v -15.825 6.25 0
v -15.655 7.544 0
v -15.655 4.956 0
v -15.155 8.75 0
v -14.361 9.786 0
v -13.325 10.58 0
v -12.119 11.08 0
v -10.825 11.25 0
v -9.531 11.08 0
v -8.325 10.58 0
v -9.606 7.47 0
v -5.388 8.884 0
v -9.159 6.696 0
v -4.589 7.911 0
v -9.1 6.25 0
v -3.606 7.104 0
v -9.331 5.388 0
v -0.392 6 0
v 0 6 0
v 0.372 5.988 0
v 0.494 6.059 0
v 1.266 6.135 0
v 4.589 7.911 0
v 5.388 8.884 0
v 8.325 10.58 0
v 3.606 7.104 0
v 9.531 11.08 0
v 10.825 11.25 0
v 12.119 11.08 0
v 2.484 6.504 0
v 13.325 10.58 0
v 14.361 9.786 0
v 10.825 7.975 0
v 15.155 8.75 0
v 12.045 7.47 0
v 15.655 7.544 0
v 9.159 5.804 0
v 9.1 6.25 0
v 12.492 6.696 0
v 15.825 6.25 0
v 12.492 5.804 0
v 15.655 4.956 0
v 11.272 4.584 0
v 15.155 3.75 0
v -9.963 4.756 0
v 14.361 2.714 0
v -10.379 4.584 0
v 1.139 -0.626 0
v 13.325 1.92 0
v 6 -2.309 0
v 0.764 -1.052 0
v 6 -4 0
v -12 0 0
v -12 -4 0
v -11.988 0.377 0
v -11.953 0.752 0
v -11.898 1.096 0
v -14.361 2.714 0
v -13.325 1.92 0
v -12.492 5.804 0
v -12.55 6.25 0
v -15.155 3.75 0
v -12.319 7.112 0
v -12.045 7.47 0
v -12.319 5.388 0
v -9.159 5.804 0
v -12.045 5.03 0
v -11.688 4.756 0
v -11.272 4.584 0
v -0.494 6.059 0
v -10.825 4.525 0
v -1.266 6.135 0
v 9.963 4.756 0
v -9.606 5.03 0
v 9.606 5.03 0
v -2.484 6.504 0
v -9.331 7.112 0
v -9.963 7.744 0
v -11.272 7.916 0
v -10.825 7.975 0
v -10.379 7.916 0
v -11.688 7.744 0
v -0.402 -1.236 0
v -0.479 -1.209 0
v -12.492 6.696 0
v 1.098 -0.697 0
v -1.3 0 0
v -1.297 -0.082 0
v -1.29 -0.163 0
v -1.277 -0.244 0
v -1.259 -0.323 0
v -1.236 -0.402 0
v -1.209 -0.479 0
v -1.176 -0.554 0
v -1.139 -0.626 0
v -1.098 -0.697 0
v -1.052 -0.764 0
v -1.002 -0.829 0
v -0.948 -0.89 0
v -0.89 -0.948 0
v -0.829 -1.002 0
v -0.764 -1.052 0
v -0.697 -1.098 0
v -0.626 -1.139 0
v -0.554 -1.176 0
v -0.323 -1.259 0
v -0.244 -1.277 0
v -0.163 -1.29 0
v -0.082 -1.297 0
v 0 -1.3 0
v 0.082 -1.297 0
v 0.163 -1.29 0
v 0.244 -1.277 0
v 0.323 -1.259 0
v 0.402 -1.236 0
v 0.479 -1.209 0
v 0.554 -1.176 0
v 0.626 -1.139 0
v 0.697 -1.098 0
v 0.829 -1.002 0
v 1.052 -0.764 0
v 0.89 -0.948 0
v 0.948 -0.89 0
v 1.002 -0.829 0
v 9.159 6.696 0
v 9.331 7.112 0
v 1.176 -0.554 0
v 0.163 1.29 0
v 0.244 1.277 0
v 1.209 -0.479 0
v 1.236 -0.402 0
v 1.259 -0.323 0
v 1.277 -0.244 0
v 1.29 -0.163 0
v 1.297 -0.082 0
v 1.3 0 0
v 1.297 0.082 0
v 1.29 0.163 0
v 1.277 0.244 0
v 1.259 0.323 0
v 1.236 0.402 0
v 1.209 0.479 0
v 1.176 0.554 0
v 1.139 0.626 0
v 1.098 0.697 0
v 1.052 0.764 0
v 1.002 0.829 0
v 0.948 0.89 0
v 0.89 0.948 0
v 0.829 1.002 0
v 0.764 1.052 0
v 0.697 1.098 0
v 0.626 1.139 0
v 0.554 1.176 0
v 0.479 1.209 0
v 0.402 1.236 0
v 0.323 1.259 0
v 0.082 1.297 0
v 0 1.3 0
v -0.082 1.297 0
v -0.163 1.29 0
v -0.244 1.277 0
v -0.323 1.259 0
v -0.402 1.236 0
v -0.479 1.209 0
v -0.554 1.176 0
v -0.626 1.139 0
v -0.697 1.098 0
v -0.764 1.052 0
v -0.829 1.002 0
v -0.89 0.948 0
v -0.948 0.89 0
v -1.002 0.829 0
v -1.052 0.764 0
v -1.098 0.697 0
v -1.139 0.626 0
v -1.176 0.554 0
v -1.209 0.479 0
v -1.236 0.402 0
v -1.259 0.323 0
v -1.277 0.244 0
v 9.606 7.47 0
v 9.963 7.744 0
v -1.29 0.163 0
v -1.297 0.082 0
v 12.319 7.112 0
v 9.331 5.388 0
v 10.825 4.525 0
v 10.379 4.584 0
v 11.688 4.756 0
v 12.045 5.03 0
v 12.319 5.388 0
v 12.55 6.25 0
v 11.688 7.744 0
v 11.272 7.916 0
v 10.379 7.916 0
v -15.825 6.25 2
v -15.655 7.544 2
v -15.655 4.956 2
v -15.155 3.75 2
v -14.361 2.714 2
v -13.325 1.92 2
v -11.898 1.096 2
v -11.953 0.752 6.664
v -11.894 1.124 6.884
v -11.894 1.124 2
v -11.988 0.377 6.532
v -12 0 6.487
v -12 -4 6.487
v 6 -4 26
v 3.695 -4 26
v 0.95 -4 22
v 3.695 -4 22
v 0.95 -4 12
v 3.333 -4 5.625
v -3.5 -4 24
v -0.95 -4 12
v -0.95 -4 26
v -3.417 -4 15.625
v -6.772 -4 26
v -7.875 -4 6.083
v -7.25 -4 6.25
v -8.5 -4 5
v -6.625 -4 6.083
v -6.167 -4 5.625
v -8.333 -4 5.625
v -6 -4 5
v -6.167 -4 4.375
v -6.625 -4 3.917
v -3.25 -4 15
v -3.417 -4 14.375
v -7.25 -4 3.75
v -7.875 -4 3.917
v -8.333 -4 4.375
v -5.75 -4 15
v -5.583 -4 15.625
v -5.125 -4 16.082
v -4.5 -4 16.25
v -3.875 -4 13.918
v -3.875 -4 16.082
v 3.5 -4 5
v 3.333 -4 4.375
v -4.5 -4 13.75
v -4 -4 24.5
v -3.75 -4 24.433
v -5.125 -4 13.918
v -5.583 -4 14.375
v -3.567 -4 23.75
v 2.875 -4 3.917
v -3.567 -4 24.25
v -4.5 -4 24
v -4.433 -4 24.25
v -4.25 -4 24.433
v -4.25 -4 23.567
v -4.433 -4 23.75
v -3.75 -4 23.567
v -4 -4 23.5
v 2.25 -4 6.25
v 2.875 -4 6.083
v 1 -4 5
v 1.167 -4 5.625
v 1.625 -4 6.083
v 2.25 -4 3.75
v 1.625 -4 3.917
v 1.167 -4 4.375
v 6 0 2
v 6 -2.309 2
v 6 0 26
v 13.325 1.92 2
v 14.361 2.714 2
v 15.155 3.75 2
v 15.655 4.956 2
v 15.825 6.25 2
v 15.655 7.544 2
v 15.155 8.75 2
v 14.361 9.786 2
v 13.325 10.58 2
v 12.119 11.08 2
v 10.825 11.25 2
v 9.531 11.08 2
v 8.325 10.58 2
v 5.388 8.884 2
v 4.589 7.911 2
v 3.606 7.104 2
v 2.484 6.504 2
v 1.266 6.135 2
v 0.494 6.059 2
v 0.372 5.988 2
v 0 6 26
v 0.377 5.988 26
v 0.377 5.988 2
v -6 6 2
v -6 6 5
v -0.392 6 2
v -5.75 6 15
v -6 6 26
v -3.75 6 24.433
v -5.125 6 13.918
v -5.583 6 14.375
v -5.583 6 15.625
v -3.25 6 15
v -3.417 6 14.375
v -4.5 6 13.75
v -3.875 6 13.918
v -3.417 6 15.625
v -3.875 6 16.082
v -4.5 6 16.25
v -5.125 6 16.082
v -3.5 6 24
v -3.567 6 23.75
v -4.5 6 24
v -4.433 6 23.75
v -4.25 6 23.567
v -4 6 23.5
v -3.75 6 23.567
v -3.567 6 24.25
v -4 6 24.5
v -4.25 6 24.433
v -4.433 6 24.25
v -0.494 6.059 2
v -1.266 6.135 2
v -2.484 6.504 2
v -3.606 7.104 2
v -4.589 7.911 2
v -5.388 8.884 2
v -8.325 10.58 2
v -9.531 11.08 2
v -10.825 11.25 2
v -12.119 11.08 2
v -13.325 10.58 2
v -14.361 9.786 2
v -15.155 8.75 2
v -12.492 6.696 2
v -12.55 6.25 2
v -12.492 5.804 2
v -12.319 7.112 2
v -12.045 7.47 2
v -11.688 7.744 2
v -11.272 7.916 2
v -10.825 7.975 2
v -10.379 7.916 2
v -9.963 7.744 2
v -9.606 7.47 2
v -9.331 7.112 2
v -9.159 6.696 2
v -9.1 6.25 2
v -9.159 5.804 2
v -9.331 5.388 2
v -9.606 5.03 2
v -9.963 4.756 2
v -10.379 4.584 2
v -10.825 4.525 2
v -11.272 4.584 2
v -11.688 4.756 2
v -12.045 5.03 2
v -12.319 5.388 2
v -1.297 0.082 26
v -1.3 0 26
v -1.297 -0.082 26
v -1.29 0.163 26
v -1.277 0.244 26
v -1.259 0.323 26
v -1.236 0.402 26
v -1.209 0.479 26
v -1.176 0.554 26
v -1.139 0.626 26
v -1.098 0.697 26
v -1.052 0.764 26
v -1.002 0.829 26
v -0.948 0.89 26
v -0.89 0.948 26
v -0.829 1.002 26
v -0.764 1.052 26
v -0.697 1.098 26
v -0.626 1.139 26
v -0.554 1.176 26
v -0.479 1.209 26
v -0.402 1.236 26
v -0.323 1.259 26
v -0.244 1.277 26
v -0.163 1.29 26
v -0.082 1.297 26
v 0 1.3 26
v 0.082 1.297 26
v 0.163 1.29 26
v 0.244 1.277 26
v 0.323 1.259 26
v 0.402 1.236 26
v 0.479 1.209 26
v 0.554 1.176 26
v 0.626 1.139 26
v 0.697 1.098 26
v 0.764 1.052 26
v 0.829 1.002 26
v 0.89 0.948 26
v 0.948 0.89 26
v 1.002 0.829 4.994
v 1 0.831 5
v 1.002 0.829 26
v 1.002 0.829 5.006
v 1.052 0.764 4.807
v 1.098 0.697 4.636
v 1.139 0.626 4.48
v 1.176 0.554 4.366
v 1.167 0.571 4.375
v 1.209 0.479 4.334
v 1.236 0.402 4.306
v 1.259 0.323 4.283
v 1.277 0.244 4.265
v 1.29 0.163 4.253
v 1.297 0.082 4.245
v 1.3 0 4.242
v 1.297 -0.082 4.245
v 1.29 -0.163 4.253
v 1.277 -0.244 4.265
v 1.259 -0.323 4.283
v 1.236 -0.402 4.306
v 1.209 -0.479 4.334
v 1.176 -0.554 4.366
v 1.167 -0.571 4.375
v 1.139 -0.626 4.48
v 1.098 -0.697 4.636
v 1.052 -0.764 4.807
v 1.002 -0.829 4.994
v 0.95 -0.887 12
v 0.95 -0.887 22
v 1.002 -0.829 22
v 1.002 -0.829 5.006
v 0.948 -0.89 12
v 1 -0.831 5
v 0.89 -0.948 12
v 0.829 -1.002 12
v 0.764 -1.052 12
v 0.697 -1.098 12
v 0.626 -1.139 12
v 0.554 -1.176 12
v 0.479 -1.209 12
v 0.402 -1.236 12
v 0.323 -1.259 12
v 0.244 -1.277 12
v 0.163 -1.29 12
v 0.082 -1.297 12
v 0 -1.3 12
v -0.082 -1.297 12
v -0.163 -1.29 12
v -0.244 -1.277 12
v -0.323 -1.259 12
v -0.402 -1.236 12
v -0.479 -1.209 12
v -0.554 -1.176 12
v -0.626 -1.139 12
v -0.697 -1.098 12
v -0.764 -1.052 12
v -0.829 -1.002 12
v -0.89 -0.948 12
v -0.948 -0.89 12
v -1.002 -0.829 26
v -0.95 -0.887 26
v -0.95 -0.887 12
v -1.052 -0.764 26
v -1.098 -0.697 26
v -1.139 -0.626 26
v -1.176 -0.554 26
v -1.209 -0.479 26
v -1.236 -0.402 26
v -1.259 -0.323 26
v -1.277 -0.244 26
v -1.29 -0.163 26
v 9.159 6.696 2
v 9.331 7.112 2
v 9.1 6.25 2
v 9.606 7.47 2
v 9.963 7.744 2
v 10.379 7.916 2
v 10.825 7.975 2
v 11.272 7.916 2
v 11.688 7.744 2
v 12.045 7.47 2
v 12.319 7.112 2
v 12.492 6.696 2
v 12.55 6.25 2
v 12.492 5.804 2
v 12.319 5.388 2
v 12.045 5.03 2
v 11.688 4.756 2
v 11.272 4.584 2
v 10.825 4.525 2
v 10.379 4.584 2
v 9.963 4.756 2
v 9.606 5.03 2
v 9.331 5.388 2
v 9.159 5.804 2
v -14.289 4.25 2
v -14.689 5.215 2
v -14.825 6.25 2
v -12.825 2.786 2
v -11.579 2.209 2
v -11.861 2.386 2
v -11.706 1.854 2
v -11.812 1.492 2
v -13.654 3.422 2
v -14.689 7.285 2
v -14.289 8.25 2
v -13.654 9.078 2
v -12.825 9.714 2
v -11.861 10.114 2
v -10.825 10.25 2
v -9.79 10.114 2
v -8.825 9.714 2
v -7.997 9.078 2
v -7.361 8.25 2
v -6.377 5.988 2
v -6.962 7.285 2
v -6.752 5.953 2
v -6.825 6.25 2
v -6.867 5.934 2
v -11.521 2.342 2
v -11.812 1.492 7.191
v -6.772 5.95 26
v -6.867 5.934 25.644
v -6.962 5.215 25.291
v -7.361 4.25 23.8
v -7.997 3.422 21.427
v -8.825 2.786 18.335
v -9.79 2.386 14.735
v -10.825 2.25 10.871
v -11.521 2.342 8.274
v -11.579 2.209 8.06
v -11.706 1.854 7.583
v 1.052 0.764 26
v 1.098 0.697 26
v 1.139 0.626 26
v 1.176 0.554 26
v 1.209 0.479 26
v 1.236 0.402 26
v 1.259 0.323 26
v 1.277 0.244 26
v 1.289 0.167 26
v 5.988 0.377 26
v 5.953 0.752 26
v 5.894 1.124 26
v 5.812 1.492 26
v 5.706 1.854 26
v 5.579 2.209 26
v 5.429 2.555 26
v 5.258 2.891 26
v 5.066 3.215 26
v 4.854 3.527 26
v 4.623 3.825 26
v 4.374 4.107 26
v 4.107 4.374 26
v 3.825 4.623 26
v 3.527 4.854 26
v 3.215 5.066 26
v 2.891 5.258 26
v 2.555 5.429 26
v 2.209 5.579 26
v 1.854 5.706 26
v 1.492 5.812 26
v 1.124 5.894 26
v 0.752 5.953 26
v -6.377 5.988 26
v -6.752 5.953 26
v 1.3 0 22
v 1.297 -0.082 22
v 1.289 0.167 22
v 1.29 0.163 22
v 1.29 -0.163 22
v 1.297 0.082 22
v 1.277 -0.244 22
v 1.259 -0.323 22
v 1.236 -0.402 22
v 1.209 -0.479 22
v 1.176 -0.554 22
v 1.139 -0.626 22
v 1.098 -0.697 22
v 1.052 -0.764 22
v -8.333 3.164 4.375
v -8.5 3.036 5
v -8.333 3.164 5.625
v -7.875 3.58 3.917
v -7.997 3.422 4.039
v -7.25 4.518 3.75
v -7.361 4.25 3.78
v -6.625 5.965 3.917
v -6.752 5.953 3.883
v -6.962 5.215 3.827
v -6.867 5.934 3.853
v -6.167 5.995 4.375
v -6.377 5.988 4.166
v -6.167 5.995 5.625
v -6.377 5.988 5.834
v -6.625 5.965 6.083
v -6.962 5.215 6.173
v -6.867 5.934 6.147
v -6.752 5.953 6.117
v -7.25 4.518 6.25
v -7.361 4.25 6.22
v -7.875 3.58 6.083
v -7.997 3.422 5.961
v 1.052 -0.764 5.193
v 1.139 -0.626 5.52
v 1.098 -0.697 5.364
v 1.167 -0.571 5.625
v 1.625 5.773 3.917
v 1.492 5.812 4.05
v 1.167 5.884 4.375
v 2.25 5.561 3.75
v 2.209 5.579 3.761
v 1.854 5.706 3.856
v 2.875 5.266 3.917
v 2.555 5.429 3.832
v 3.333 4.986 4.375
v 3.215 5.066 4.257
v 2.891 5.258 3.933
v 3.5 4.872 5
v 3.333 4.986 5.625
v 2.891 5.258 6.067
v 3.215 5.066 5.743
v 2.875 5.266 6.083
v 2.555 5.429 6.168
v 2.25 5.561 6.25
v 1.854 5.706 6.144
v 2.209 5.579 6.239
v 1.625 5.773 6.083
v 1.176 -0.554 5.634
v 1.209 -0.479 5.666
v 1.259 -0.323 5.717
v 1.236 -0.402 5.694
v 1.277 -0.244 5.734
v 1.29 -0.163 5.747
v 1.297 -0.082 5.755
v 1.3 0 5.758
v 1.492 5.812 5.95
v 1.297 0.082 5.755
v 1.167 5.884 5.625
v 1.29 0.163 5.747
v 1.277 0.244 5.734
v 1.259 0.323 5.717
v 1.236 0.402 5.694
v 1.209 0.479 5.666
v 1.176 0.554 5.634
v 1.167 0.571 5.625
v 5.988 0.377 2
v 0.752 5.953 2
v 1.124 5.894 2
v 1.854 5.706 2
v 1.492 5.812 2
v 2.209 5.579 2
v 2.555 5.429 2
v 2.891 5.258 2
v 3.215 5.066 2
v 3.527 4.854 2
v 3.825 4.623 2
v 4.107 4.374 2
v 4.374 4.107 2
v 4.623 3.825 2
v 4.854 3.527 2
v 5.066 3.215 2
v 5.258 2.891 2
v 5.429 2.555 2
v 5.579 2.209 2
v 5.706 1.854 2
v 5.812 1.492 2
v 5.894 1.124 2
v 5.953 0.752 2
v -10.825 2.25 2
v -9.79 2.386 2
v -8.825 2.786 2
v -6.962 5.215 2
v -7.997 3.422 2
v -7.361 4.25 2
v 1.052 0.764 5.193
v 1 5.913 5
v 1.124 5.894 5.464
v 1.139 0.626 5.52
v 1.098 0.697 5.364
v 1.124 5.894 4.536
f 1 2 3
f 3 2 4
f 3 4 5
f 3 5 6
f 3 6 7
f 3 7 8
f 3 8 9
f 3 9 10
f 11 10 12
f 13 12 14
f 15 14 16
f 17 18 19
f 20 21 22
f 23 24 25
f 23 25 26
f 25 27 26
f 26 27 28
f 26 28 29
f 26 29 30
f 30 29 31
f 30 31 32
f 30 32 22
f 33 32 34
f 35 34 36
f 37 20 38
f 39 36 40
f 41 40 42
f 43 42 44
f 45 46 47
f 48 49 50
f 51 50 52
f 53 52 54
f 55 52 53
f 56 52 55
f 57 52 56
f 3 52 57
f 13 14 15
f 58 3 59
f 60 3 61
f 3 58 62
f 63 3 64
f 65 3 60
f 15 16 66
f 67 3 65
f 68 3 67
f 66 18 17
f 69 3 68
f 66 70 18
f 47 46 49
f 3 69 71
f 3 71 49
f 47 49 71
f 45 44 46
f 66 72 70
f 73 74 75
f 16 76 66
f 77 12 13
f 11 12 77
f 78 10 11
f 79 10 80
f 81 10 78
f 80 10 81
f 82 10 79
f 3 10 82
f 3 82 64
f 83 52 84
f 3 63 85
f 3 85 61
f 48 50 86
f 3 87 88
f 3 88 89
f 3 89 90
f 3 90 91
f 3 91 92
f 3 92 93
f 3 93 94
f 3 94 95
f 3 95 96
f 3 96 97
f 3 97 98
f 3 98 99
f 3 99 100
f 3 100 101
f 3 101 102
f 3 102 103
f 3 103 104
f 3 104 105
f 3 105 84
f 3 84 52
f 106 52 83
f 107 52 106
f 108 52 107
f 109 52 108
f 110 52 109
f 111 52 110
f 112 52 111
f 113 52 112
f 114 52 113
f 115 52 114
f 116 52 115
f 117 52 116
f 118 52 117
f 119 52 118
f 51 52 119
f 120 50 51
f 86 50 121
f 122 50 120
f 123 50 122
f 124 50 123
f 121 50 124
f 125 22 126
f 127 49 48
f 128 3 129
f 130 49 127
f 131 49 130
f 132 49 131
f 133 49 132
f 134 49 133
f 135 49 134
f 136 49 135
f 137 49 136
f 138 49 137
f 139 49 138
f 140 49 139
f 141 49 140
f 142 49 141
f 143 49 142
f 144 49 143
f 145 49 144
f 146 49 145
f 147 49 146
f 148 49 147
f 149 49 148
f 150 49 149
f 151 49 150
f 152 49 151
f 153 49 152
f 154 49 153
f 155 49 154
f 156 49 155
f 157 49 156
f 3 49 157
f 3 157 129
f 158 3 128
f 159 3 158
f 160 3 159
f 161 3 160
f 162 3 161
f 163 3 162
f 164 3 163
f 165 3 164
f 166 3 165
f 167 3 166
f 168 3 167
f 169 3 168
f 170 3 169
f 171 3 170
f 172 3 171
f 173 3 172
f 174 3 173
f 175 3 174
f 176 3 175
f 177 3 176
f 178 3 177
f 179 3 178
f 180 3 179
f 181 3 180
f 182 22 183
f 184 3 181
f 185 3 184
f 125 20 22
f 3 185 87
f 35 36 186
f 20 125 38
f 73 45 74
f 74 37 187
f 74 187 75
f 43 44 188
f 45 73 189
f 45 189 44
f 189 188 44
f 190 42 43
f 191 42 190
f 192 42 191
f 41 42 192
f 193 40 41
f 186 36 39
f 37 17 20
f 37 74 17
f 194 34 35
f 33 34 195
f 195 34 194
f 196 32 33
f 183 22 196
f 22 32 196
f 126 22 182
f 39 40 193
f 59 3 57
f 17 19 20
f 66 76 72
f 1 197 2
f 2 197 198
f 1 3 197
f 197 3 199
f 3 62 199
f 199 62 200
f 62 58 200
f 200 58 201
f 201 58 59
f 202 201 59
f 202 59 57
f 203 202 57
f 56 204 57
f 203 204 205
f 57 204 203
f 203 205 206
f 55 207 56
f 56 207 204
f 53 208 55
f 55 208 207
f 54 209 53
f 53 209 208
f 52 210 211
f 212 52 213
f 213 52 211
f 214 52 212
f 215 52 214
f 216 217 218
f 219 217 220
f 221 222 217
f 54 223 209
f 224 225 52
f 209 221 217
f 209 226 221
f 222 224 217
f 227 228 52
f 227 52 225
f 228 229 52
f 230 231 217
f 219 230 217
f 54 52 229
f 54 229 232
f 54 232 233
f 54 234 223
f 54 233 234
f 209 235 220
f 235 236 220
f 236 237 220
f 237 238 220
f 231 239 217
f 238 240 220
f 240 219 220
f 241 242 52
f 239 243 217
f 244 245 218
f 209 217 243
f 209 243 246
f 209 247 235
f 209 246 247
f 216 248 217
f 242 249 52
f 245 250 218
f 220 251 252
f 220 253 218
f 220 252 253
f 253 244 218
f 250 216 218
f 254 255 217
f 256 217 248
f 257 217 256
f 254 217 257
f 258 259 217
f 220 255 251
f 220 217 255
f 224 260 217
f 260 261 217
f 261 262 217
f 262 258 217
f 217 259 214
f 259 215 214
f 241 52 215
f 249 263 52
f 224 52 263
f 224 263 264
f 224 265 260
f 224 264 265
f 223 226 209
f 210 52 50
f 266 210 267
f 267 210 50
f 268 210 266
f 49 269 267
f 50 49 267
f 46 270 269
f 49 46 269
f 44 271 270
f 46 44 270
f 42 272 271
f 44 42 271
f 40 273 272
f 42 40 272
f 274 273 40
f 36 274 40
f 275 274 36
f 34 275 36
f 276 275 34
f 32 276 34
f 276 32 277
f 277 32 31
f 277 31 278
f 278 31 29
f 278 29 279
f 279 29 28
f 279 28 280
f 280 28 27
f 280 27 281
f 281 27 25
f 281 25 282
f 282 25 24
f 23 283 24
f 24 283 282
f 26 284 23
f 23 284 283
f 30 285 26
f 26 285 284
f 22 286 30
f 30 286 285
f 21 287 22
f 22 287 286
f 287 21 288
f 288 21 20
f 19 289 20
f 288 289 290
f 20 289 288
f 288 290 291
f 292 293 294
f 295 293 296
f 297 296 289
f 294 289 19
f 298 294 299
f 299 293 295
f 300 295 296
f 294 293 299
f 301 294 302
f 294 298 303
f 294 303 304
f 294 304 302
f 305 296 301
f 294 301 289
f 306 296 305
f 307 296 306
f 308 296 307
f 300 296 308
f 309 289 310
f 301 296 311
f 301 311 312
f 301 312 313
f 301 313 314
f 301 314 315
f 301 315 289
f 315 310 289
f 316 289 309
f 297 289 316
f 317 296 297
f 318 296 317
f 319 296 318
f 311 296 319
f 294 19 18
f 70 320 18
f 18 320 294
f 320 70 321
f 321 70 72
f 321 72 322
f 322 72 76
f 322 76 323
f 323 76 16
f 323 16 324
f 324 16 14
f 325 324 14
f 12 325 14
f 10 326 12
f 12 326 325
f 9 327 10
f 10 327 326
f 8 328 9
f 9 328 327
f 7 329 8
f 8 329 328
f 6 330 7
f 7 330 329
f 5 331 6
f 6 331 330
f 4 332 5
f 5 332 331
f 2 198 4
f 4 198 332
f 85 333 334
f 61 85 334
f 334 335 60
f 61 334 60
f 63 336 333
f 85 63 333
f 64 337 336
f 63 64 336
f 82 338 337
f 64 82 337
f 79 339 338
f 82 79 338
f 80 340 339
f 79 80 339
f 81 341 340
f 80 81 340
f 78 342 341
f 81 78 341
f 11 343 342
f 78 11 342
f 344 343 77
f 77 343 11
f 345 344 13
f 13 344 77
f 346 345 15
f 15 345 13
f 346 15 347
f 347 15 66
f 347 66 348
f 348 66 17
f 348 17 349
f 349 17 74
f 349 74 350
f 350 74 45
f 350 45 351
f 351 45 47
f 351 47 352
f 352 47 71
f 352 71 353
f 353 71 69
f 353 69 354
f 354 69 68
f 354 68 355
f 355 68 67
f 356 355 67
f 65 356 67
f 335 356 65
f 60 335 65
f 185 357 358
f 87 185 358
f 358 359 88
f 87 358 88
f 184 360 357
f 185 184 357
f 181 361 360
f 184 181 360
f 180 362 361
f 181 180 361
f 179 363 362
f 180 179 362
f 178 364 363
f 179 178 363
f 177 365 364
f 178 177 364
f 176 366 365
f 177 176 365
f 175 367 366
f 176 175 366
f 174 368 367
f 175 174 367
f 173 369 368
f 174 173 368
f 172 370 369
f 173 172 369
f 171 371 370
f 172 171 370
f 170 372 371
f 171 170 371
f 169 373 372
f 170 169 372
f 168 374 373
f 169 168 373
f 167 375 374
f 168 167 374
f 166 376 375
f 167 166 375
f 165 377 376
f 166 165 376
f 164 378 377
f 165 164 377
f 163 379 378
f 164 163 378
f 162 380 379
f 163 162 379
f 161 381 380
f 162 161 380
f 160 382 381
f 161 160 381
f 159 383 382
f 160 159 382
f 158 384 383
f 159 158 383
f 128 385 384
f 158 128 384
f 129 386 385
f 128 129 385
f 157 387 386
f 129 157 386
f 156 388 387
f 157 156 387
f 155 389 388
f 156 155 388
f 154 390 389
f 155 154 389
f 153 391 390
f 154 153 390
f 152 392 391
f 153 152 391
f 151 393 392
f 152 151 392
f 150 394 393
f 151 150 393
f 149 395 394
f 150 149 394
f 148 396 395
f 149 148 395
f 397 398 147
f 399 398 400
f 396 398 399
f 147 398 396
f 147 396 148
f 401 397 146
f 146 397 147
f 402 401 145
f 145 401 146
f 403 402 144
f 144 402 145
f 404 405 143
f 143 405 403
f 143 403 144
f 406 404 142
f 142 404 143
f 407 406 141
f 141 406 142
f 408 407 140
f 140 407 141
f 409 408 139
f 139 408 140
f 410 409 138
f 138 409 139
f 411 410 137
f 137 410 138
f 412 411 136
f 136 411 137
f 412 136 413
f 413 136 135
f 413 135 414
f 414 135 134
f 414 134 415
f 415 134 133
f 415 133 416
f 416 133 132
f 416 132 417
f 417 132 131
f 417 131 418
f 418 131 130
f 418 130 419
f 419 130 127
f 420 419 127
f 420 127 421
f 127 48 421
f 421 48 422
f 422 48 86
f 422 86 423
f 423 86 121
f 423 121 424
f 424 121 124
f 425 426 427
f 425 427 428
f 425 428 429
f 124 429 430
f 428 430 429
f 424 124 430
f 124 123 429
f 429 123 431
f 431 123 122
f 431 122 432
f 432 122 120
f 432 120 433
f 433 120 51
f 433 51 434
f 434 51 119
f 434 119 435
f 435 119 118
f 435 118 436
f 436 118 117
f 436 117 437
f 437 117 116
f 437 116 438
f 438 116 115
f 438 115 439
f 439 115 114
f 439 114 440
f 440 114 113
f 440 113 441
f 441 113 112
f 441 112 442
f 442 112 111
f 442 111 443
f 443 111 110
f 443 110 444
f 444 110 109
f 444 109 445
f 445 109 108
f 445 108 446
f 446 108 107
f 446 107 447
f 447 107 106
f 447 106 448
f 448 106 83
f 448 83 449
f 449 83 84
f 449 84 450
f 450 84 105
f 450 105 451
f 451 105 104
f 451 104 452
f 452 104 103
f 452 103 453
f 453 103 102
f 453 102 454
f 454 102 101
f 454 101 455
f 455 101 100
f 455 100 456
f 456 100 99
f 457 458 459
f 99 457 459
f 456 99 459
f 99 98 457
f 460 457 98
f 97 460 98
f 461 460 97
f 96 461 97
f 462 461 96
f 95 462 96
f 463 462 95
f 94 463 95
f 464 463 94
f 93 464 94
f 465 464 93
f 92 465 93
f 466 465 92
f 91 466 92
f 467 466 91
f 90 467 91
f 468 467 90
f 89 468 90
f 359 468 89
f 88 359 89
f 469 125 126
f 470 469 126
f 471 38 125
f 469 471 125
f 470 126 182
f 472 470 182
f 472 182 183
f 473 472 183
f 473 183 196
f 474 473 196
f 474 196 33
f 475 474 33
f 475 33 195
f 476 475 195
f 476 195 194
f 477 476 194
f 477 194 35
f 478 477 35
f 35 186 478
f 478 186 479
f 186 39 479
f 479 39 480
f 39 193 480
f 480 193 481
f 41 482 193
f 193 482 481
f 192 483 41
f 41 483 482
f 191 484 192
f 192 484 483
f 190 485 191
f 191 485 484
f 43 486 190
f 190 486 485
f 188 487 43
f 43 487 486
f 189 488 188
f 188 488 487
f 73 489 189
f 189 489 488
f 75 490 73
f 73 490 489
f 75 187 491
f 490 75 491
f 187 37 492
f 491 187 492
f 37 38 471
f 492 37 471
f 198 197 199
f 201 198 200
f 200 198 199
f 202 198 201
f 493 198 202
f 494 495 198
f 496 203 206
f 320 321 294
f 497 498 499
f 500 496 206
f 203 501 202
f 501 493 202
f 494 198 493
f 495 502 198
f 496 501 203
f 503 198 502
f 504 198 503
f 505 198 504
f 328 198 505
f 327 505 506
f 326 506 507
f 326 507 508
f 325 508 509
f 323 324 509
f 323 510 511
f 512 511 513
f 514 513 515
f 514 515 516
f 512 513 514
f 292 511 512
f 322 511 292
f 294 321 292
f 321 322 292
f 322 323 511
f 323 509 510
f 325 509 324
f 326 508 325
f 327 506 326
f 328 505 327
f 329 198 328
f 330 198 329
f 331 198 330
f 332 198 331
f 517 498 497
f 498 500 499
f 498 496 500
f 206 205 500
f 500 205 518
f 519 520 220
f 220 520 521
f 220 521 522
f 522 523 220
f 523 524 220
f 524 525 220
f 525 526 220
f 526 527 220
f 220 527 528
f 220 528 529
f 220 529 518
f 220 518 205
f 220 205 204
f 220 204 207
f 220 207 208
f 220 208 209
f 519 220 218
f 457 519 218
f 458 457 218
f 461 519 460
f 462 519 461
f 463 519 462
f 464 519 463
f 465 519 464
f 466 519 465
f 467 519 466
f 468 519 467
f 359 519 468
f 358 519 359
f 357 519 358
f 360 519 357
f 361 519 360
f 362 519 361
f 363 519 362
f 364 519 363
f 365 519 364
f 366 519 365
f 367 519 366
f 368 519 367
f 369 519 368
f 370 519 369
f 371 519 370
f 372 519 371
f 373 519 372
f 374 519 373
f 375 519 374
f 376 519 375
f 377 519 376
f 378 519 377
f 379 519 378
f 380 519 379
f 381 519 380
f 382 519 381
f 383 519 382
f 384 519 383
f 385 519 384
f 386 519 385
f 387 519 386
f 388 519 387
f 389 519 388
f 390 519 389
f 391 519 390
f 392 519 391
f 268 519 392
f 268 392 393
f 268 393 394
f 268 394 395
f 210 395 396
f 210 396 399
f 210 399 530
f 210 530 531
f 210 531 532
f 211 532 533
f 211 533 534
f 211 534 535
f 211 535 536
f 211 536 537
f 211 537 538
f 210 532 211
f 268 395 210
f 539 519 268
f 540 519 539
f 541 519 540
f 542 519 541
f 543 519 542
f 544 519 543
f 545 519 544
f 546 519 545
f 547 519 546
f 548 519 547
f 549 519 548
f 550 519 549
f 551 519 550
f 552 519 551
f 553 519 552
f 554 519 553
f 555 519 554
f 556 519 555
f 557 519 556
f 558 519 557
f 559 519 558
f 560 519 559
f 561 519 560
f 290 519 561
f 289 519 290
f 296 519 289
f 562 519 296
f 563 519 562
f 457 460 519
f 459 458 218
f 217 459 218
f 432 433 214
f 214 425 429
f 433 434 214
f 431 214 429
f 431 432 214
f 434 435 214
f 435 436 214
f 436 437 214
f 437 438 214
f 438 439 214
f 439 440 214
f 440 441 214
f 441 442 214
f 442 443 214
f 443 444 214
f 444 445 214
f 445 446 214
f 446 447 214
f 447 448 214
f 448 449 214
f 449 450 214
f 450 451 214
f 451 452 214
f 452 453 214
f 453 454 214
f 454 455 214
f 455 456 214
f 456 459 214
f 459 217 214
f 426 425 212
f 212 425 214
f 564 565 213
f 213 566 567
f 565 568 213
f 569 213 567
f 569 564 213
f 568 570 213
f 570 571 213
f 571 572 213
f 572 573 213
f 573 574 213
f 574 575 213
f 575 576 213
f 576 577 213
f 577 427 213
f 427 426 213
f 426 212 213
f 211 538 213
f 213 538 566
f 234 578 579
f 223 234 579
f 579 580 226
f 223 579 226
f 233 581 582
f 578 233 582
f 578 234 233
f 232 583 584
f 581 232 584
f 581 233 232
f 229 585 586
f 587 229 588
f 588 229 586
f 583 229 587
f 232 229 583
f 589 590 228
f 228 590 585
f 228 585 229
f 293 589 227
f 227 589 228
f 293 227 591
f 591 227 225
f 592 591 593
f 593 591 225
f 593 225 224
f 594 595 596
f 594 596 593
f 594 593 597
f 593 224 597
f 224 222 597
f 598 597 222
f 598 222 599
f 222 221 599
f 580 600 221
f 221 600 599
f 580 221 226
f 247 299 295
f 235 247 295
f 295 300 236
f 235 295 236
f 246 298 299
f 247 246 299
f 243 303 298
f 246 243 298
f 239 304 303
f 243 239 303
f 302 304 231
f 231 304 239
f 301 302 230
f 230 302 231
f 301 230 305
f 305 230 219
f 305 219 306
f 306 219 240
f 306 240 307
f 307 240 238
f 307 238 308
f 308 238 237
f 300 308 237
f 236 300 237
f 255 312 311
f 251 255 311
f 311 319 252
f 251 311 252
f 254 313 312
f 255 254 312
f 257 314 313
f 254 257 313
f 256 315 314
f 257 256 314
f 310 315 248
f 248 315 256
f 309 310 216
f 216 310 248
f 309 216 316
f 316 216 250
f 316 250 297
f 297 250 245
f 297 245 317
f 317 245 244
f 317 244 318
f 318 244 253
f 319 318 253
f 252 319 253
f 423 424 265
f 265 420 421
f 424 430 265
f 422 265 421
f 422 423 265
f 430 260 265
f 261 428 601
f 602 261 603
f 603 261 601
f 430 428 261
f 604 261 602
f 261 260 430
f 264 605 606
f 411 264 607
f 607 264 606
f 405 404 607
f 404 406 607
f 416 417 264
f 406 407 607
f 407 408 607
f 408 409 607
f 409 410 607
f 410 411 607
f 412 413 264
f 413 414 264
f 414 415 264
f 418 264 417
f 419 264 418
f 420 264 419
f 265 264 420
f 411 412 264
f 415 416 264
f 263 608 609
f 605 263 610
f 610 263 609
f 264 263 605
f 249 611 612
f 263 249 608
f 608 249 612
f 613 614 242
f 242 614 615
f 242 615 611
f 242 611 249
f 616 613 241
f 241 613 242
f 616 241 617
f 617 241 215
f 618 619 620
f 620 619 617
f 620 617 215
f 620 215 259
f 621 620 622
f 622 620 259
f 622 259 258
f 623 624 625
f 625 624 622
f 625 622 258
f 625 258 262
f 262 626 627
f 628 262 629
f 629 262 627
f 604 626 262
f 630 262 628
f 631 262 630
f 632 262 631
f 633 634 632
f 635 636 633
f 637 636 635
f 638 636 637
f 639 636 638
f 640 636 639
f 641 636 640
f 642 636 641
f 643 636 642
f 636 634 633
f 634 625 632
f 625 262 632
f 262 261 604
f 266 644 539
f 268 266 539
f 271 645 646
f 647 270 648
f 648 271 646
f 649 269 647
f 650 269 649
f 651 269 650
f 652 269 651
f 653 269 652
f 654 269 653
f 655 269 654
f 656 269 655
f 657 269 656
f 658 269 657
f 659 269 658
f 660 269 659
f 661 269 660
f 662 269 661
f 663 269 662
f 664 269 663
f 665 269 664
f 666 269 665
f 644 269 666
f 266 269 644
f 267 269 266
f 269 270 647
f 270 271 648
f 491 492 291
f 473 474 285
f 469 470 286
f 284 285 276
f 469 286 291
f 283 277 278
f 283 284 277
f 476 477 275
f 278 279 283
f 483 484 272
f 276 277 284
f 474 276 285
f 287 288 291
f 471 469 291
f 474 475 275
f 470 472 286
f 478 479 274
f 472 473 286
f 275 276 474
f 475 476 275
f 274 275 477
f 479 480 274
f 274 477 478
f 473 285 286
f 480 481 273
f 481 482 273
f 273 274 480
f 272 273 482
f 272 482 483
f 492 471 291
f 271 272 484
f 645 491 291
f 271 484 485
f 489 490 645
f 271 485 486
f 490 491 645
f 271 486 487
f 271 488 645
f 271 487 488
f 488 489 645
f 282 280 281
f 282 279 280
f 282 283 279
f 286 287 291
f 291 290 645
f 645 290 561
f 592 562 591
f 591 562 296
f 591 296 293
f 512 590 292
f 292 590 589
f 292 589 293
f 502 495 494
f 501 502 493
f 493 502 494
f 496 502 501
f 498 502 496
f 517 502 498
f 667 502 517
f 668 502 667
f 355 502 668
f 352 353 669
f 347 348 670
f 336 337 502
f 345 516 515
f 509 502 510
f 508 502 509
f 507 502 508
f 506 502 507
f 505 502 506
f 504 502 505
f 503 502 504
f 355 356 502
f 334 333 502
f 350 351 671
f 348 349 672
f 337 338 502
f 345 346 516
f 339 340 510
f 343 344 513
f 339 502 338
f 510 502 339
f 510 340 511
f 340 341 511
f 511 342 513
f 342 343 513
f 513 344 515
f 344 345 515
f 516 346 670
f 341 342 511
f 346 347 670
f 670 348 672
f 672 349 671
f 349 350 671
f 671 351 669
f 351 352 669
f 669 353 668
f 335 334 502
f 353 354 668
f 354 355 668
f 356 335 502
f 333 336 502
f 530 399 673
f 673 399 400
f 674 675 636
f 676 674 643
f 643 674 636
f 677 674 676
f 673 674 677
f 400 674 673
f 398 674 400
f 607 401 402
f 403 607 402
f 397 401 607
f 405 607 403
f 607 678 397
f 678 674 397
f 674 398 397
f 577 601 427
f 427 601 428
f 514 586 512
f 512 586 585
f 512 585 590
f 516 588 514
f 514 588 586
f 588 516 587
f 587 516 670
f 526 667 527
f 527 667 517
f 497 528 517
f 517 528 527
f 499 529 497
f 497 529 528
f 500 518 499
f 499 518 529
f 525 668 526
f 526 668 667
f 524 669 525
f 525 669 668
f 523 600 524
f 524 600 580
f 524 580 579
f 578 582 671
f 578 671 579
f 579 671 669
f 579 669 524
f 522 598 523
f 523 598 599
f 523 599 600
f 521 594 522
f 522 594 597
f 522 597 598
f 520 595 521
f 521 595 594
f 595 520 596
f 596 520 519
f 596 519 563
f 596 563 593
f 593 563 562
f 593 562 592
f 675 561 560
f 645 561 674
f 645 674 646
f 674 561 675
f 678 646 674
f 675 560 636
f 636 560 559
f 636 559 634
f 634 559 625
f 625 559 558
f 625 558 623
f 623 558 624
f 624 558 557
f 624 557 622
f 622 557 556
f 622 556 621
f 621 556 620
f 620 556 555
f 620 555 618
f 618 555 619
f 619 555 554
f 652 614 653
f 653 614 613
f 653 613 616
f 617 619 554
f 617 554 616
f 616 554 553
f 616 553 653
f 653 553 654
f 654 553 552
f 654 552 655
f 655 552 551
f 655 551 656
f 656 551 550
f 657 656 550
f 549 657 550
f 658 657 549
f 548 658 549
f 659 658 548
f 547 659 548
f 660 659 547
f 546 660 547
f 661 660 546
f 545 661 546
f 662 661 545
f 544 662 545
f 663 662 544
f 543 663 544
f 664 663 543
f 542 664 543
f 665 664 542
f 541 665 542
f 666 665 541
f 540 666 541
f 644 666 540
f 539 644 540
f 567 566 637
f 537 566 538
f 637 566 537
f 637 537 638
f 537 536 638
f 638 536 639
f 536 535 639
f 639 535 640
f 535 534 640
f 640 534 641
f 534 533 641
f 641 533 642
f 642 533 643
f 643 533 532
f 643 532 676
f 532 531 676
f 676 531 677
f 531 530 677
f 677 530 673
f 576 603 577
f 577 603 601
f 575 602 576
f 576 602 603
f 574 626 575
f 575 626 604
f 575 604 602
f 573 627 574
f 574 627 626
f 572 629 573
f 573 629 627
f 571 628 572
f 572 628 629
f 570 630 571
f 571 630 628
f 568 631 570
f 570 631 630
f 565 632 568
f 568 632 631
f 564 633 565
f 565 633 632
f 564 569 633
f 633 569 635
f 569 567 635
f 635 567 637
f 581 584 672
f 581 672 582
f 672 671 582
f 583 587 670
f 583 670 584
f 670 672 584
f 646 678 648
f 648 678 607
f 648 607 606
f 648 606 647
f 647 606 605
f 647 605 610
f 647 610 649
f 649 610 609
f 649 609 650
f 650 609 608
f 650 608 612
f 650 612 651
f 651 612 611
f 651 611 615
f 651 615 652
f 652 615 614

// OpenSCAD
// file: microswitch.scad
/**
 * @author Johann Rocholl <johann@rocholl.net>
 * @license GPL-3.0
 */

// Don't print this file, purchase real micro switches
// e.g. Honeywell ZM10B10A01 or OMRON SS-5 or similar.

module microswitch() {
  difference() {
    union() {
      translate([0, 0, 2.5])
        cube([19.8, 6, 10], center=true);
      translate([2.5, 0.5, 6])
        cube([2, 3.5, 5], center=true);
      for (x = [-8, -1, 8]) {
        translate([x, 0, 0])
          cube([0.6, 3.2, 13], center=true);
      }
    }
    for (x = [-9.5/2, 9.5/2]) {
      translate([x, 0, 0]) rotate([90, 0, 0])
        cylinder(r=2.5/2, h=20, center=true, $fn=12);
    }
  }
}

microswitch();
// file: configuration.scad
// Increase this if your slicer or printer make holes too tight.
extra_radius = 0.1;

// OD = outside diameter, corner to corner.
m3_nut_od = 6.1;
m3_nut_radius = m3_nut_od/2 + 0.2 + extra_radius;
m3_washer_radius = 3.5 + extra_radius;
m3_washer_height = 0.65;

// Major diameter of metric 3mm thread.
m3_head_height = 3;
m3_major = 2.88;
m3_radius = m3_major/2 + extra_radius;
m3_wide_radius = m3_major/2 + extra_radius + 0.2;

// NEMA17 stepper motors.
motor_shaft_diameter = 5;
motor_shaft_radius = motor_shaft_diameter/2 + extra_radius;

// Frame brackets. M3x8mm screws work best with 3.6 mm brackets.
thickness = 3.6;

// OpenBeam or Misumi. Currently only 15x15 mm, but there is a plan
// to make models more parametric and allow 20x20 mm in the future.
extrusion = 15;

// Placement for the NEMA17 stepper motors.
motor_offset = 44;
motor_length = 47;
// main file
include <configuration.scad>;

use <microswitch.scad>;

height = 26;
height2 = 26;
tunnel = 2.4;
face_offset = 4;

module foot() {
  difference() {
    translate([12.5, 0, 0]) rotate([0, 0, -60])
      translate([-12.5, 0, 1]) rotate([0, 0, -60]) union() {
        cylinder(r=5, h=2, center=true, $fn=24);
        translate([10, 0, 0])
          cube([20, 10, 2], center=true);
    }
    translate([0, -10, 0])
      cube([40, 20, 20], center=true);
    translate([12.5, 0, 0]) {
      // Space for bowden push fit connector.
      cylinder(r=6.49, h=3*height, center=true, $fn=32);
      for (a = [60:120:359]) {
	    rotate([0, 0, a]) translate([-12.5, 0, 0])
          cylinder(r=m3_wide_radius, h=20, center=true, $fn=24);
      }
    }
  }
}

module retractable() {
  difference() {
    union() {
      translate([0, 0, height/2])
        cylinder(r=6, h=height, center=true, $fn=100);
      translate([0, -3, height/2])
        cube([12, 6, height], center=true);
      // Lower part on the left.
      translate([-6, 0, height2/2])
        cylinder(r=6, h=height2, center=true, $fn=100);
      translate([-3, 0, height2/2])
        cube([6, 12, height2], center=true);
      translate([-3, -3, height2/2])
        cube([18, 6, height2], center=true);
      // Feet for vertical M3 screw attachment.
      rotate([0, 0, 90]) {
        foot();
        scale([1, -1, 1]) foot();
      }
    }
    translate([-19, 0, height/2+6]) rotate([0, 15, 0])
      cube([20, 20, height], center=true);
    cylinder(r=tunnel/2+extra_radius, h=3*height, center=true, $fn=100);
    translate([0, -6, height/2+12])
      cube([tunnel-0.5, 12, height], center=true);
    rotate([0, 0, 30]) translate([0, -6, height/2+22])
      cube([tunnel, 12, height], center=true);
    // Safety needle spring.
    translate([-4.5, 0, height-11]) rotate([90, 0, 0])
      cylinder(r=2.5/2, h=40, center=true, $fn=12);
    translate([-4, 0, height-2]) rotate([90, 0, 0])
      cylinder(r=1/2, h=40, center=true, $fn=12);
    // Effector screw heads.
    rotate([0, 0, 330]) translate([-12.5, 0, 2])
      cylinder(r=4, h=30, $fn=24);
    // Flat front face.
    translate([0, -face_offset-10, height/2]) difference() {
      cube([30, 20, 2*height], center=true);
    }
    // Sub-miniature micro switch.
    translate([-2.5, -face_offset-3, 5]) {
      % microswitch();
      for (x = [-9.5/2, 9.5/2]) {
        translate([x, 0, 0]) rotate([90, 0, 0])
          cylinder(r=2.5/2, h=40, center=true, $fn=12);
      }
    }
  }
}

retractable();
